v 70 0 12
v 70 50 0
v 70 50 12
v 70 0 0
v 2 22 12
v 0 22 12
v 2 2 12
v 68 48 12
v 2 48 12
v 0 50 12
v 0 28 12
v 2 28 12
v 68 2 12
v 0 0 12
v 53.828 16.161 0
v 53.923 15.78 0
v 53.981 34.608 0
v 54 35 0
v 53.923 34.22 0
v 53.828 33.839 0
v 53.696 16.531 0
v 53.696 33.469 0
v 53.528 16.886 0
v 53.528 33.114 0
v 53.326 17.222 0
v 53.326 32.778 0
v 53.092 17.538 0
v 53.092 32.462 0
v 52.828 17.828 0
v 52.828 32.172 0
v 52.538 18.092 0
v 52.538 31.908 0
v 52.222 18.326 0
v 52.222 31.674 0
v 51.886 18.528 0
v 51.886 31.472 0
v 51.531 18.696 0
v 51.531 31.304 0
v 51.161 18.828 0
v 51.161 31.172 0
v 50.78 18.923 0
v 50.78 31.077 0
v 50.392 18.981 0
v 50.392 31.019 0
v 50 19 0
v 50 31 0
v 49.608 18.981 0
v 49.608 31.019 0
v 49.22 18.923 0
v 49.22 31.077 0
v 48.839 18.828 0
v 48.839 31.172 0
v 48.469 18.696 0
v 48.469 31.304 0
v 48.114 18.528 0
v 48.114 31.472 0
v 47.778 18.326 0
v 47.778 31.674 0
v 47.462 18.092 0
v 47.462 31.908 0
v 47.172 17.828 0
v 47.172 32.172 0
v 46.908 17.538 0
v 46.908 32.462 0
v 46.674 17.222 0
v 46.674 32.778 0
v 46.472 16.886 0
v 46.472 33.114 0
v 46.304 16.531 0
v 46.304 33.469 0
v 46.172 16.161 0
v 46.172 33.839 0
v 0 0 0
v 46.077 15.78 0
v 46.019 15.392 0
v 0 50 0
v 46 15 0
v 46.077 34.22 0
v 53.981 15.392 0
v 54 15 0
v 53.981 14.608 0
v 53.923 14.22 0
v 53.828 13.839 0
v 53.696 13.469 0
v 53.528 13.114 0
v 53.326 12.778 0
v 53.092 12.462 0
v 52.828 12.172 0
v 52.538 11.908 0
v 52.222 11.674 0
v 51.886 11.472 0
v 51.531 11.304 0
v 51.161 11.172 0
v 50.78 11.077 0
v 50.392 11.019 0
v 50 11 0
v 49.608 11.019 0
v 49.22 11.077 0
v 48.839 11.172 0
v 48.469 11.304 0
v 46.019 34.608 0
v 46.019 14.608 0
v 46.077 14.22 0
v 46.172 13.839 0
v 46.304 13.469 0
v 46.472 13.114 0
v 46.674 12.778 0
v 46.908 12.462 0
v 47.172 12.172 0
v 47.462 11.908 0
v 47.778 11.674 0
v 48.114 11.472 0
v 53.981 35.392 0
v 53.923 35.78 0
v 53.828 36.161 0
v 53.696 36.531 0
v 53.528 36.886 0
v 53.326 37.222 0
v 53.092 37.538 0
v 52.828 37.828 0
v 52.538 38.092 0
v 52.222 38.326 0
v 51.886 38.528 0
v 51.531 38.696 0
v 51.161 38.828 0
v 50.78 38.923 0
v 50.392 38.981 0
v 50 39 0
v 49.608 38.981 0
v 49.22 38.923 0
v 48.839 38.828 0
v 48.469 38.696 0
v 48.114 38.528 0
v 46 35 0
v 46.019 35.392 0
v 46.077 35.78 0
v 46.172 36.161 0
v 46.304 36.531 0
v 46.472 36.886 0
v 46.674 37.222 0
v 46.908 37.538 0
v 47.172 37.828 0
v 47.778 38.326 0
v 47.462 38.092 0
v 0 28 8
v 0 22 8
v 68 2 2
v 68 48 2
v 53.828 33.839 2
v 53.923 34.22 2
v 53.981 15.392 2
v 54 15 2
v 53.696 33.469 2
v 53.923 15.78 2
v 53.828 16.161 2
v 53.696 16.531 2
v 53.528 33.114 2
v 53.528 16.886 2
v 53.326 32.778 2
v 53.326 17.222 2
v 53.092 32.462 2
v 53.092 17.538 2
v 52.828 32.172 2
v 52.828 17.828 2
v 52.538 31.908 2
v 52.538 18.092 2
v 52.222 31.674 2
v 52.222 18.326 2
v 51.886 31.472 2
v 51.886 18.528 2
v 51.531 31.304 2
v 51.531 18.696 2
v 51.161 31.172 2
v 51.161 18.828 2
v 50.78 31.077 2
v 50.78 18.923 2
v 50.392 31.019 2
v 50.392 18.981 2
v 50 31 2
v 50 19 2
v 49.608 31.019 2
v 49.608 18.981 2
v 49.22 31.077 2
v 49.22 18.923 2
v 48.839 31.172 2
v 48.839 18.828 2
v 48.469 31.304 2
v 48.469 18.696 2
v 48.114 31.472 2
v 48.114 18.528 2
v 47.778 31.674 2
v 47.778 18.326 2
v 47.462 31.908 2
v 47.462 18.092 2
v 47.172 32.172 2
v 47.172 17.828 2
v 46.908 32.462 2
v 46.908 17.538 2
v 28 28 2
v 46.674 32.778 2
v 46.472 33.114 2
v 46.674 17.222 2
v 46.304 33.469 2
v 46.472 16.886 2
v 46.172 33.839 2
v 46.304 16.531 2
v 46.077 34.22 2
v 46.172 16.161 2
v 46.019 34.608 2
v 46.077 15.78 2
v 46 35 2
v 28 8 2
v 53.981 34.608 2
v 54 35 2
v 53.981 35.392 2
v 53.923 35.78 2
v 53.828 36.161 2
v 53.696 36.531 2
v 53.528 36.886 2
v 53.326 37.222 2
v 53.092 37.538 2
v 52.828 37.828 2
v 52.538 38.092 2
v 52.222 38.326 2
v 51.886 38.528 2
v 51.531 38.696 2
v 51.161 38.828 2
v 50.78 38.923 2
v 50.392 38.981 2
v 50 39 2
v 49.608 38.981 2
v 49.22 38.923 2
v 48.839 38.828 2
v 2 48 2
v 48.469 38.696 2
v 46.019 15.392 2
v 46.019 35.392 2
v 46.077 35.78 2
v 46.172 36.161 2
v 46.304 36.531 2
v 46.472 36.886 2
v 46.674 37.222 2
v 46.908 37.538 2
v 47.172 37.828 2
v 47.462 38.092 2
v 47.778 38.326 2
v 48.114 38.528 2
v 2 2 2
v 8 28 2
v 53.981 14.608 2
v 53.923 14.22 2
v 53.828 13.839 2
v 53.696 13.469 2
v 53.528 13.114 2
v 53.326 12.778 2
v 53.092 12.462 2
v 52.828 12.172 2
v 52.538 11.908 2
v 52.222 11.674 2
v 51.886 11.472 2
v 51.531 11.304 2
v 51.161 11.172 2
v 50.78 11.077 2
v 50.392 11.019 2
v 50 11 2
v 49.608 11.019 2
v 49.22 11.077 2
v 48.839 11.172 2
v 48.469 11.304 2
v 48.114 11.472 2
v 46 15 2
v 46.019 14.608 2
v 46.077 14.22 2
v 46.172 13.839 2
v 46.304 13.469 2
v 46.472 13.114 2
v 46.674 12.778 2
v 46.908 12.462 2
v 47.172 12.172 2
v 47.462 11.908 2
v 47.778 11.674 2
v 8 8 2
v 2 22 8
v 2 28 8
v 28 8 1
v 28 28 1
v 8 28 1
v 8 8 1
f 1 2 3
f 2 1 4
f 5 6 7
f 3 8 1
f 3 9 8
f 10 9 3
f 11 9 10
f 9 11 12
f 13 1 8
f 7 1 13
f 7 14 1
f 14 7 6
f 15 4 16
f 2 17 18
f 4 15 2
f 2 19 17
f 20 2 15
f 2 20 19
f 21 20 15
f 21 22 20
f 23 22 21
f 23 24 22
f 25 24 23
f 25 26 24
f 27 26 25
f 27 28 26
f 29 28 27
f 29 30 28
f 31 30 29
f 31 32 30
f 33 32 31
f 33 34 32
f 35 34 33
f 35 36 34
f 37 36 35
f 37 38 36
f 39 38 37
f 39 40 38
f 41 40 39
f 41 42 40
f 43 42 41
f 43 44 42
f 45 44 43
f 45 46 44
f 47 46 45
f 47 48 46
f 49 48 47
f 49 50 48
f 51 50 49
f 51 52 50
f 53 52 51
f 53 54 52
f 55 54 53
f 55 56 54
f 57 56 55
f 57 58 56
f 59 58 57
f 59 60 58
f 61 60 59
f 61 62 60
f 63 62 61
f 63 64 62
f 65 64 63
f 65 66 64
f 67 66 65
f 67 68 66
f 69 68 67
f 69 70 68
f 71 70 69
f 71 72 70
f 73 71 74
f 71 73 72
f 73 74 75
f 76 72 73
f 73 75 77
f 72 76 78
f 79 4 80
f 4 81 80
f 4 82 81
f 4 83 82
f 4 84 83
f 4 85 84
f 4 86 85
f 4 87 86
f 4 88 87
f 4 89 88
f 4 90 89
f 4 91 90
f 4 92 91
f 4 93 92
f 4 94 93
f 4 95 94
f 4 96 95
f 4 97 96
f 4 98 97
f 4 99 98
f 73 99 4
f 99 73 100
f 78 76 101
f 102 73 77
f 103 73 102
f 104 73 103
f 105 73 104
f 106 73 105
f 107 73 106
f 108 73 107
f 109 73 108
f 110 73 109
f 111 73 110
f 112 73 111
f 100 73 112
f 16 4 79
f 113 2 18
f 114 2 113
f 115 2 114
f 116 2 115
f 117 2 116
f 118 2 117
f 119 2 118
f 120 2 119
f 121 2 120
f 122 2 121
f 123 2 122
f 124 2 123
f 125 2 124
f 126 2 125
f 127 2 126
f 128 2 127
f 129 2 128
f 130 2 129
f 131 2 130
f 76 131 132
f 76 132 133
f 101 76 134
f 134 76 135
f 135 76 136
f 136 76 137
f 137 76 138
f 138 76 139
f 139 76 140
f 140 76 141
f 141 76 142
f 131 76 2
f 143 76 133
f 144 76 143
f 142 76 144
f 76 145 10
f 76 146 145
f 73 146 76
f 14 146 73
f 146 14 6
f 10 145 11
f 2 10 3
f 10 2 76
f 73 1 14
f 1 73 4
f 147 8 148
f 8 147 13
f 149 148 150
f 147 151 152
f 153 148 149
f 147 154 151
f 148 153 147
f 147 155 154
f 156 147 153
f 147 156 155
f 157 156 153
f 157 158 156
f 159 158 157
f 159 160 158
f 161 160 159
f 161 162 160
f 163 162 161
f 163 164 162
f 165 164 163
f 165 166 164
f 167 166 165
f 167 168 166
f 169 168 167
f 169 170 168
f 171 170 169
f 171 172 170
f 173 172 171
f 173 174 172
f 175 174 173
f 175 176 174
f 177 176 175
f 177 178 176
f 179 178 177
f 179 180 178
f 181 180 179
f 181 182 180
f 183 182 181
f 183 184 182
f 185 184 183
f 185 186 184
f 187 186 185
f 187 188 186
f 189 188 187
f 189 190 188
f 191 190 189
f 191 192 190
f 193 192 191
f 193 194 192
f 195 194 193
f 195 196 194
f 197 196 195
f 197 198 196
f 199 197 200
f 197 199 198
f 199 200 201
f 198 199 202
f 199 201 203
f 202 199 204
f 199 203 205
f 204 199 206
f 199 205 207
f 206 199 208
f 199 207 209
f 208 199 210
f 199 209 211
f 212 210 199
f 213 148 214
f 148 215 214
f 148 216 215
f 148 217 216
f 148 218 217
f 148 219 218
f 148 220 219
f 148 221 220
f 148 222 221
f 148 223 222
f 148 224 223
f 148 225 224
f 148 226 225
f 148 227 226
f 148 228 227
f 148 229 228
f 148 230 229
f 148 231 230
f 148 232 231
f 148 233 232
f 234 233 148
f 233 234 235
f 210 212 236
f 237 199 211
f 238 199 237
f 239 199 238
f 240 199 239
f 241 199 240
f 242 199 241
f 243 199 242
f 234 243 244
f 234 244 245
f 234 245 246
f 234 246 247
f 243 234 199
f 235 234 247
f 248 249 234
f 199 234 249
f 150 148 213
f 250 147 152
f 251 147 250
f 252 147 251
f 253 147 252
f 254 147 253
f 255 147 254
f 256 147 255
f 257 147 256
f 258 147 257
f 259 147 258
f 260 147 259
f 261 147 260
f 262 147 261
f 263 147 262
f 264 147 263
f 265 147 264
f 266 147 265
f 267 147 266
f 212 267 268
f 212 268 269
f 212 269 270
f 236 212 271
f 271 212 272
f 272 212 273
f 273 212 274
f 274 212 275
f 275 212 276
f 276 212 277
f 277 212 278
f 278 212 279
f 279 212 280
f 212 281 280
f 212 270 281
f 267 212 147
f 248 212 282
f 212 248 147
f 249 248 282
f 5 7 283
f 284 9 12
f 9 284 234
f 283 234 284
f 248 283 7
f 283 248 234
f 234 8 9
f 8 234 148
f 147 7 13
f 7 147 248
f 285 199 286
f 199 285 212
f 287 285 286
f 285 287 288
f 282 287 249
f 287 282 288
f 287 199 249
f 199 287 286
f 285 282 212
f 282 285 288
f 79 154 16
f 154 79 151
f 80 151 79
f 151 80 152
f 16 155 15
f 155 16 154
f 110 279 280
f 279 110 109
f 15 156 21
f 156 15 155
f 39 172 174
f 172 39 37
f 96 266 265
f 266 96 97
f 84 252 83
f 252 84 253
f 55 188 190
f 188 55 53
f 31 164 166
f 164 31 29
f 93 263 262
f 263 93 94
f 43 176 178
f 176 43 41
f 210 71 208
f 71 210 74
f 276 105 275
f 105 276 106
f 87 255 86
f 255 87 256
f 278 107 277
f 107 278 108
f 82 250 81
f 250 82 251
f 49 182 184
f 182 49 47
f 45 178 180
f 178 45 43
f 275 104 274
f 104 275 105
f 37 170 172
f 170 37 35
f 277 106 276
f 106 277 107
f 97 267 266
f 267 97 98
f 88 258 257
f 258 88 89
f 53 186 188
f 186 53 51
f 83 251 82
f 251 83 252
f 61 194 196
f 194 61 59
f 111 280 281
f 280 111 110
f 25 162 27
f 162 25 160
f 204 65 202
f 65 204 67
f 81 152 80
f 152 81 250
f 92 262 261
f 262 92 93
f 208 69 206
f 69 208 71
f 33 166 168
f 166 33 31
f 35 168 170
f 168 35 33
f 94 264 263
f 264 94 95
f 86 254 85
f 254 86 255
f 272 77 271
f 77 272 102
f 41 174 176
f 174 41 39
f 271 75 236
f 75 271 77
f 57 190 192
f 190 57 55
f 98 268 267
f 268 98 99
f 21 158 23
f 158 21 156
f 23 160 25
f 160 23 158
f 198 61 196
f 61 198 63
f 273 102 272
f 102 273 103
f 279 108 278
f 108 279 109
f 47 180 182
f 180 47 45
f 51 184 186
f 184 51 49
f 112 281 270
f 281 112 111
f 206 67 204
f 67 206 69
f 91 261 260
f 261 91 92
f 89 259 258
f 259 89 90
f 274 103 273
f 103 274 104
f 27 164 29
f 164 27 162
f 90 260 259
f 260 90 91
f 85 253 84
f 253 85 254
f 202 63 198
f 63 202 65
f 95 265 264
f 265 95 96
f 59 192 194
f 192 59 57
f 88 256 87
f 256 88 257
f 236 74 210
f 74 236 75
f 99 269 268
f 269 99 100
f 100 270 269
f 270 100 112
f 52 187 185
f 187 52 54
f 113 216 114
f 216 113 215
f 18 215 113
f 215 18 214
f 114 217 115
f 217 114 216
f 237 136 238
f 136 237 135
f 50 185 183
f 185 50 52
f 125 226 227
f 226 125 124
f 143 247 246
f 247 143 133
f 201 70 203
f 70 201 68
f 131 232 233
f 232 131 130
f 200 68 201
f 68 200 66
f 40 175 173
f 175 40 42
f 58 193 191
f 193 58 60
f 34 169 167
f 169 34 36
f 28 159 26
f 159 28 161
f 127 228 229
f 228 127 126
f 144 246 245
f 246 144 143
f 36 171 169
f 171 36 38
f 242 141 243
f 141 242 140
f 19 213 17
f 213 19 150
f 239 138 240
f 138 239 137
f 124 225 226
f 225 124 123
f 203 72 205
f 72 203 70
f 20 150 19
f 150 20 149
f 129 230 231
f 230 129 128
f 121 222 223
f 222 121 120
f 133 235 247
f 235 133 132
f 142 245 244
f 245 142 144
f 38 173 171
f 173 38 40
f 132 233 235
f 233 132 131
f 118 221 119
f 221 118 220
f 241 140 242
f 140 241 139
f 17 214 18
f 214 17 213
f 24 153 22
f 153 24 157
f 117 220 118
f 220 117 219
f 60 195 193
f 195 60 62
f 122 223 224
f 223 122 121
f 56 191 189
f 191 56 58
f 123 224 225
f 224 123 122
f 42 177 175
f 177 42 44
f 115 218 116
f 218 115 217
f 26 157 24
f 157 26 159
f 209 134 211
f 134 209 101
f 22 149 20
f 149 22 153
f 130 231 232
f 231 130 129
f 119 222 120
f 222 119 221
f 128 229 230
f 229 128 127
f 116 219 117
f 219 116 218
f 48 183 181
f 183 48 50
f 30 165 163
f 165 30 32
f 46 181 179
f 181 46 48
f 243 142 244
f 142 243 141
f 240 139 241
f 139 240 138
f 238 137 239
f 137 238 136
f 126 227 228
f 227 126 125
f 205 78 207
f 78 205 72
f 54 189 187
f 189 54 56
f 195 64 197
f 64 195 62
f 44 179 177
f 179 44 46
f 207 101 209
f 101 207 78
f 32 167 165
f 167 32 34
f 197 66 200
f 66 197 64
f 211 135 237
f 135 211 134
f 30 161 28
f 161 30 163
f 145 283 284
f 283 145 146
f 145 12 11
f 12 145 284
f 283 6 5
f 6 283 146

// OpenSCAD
// file: parameters.scad
// AFPM-Desk-v1 shared parameters (mm)
// Desktop axial-flux PM learning generator — Faraday induction education only.

$fn = 64;

// --- Magnets (N42 Neo discs) ---
magnet_d = 20;
magnet_h = 3;
magnet_count = 8;
magnet_pcd = 70; // pitch circle diameter

// --- Rotor ---
rotor_od = 100;
rotor_id = 12; // shaft clearance / hub seat
rotor_thickness = 6;
magnet_pocket_clearance = 0.3;
magnet_pocket_depth = magnet_h + 0.2;

// --- Stator ---
stator_od = 110;
stator_id = 30;
stator_thickness = 8;
coil_count = 6;
coil_slot_w = 22;
coil_slot_h = 18;
coil_slot_depth = 6;
coil_pcd = 70;

// --- Shaft / bearings ---
shaft_d = 8;
bearing_od = 22; // 608 skate bearing
bearing_id = 8;
bearing_h = 7;
bearing_seat_od = bearing_od + 0.2;

// --- Base ---
base_w = 160;
base_d = 140;
base_h = 8;
post_h = 55;

// --- Crank ---
crank_arm_len = 80;
crank_arm_w = 16;
crank_arm_t = 8;
handle_d = 12;
handle_len = 40;

// --- Electronics tray ---
tray_w = 70;
tray_d = 50;
tray_h = 12;
// main file
include <parameters.scad>

module electronics_tray() {
  difference() {
    cube([tray_w, tray_d, tray_h]);
    translate([2, 2, 2])
      cube([tray_w - 4, tray_d - 4, tray_h]);
    // bridge rectifier pocket
    translate([8, 8, 1])
      cube([20, 20, 3]);
    // LED / banana jack holes
    translate([50, 15, -0.1])
      cylinder(h=tray_h+0.2, d=8);
    translate([50, 35, -0.1])
      cylinder(h=tray_h+0.2, d=8);
    // wire notch
    translate([-0.1, tray_d/2 - 3, tray_h - 4])
      cube([4, 6, 5]);
  }
}

electronics_tray();
